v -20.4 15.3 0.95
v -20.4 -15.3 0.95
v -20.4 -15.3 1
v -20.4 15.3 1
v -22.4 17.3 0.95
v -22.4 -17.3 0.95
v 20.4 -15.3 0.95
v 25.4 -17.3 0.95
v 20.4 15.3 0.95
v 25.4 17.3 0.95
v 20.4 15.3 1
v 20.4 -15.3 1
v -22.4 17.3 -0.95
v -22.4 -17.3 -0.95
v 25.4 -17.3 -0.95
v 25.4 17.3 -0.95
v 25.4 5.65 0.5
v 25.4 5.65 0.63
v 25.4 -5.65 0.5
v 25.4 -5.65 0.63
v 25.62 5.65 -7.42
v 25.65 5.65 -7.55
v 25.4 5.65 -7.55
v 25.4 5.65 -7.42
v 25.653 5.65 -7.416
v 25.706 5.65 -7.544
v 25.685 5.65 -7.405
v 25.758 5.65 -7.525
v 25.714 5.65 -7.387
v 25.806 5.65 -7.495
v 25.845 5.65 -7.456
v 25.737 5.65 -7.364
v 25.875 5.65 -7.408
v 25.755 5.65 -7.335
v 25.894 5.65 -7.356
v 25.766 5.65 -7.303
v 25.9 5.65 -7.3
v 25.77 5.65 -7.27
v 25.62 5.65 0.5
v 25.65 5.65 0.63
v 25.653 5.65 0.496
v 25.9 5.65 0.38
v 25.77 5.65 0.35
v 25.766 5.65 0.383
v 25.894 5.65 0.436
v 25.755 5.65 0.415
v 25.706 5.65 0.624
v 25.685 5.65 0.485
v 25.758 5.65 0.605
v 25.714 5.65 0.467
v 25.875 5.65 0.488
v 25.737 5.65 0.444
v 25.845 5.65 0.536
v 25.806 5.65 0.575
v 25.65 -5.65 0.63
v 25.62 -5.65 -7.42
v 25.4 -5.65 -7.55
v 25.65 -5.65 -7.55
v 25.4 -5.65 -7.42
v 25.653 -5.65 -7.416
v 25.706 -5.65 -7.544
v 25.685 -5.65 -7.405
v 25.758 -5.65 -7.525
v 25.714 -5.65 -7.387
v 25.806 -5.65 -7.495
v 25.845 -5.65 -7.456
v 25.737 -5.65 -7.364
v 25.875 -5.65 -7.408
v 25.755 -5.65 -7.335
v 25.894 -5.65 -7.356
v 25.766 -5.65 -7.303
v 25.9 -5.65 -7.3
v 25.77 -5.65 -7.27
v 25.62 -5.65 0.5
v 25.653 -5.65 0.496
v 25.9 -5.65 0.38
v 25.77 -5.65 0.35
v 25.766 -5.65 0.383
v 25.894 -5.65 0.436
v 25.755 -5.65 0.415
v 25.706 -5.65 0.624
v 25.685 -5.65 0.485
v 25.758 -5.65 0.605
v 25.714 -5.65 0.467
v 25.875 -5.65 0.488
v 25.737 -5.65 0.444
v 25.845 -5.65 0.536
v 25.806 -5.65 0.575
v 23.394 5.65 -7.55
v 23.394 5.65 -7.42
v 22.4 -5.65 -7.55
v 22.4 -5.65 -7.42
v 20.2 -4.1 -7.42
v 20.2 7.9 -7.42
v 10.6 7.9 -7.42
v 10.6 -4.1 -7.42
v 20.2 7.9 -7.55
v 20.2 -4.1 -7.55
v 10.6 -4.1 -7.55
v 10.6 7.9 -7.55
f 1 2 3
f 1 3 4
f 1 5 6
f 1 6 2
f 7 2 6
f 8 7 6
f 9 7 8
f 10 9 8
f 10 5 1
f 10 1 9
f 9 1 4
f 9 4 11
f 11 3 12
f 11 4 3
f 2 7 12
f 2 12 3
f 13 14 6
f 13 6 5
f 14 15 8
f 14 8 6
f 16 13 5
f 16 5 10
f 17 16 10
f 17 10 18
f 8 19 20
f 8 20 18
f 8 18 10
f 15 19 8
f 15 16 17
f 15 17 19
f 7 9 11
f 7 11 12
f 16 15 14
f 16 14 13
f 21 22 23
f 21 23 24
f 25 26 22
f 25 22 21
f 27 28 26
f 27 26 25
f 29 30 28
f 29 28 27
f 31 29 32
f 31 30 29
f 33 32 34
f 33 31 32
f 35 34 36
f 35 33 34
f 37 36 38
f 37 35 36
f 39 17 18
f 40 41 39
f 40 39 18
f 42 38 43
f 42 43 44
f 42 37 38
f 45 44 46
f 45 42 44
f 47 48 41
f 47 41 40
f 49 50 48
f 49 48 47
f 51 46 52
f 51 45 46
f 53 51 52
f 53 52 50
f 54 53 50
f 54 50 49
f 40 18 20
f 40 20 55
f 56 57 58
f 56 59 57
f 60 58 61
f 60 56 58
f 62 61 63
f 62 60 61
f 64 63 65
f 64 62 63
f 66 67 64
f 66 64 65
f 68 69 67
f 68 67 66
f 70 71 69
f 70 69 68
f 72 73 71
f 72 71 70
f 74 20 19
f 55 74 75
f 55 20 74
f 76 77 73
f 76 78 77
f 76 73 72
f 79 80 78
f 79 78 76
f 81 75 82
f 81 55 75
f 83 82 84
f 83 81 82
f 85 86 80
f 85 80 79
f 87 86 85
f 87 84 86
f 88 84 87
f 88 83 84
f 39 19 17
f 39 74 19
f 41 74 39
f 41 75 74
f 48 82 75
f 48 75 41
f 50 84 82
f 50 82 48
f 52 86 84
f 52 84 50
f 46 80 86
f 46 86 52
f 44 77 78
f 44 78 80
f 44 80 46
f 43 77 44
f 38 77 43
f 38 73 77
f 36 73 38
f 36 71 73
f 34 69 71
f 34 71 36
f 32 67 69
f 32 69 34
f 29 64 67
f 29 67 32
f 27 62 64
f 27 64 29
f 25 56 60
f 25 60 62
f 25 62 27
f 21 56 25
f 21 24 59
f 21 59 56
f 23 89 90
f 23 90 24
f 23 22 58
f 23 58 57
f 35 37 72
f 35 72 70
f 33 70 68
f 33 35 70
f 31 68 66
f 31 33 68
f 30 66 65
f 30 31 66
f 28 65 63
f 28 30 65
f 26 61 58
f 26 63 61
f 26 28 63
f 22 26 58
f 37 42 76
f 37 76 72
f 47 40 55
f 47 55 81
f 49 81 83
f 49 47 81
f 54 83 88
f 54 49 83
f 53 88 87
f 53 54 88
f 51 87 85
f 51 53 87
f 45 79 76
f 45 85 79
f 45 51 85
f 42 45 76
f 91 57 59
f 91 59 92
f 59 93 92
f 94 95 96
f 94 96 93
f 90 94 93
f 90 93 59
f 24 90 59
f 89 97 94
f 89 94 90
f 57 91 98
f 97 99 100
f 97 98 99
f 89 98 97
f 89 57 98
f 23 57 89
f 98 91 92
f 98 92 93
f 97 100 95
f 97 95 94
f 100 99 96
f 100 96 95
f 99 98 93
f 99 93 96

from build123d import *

# Parameters (mm, degrees)
SKETCH001_W  = 40.8
SKETCH001_H  = 30.6
PAD001_DEPTH = 1
SKETCH_W     = 47.8
SKETCH_H     = 34.6
PAD_DEPTH    = 0.95
PAD002_DEPTH = 5.65
PAD003_DEPTH = 0.13


with BuildPart() as part:
    # Sketch001 → Pad001 (new body)
    with BuildSketch(Plane.XY):
        Rectangle(SKETCH001_W, SKETCH001_H)
    extrude(amount=PAD001_DEPTH)

    # Sketch → Pad (join, symmetric)
    with BuildSketch(Plane.XY):
        with Locations((1.5, 0)):
            Rectangle(SKETCH_W, SKETCH_H)
    extrude(amount=PAD_DEPTH, both=True)

    # Sketch002 → Pad002 (join, symmetric)
    with BuildSketch(Plane.XZ):
        with BuildLine():
            Line((25.4, 0.5), (25.62, 0.5))
            ThreePointArc((25.77, 0.35), (25.726066, 0.456066), (25.62, 0.5))
            Line((25.77, 0.35), (25.77, -7.27))
            ThreePointArc((25.62, -7.42), (25.726066, -7.376066), (25.77, -7.27))
            Line((25.4, -7.42), (25.62, -7.42))
            Line((25.4, -7.55), (25.4, -7.42))
            Line((25.65, -7.55), (25.4, -7.55))
            ThreePointArc((25.65, -7.55), (25.826777, -7.476777), (25.9, -7.3))
            Line((25.9, 0.38), (25.9, -7.3))
            ThreePointArc((25.9, 0.38), (25.826777, 0.556777), (25.65, 0.63))
            Line((25.4, 0.63), (25.65, 0.63))
            Line((25.4, 0.5), (25.4, 0.63))
        make_face()
    extrude(amount=PAD002_DEPTH, both=True)

    # Sketch003 (on DatumPlane) → Pad003 (join)
    with BuildSketch(Plane(origin=(0, 0, -7.55), x_dir=(-1, 0, 0), z_dir=(0, 0, -1))):
        Polygon((-25.4, -5.65), (-25.4, 5.65), (-23.393548, 5.65), (-20.2, 7.9), (-10.6, 7.9), (-10.6, -4.1), (-20.2, -4.1), (-22.4, -5.65), align=None)
    extrude(amount=-PAD003_DEPTH)


solid = part.part
